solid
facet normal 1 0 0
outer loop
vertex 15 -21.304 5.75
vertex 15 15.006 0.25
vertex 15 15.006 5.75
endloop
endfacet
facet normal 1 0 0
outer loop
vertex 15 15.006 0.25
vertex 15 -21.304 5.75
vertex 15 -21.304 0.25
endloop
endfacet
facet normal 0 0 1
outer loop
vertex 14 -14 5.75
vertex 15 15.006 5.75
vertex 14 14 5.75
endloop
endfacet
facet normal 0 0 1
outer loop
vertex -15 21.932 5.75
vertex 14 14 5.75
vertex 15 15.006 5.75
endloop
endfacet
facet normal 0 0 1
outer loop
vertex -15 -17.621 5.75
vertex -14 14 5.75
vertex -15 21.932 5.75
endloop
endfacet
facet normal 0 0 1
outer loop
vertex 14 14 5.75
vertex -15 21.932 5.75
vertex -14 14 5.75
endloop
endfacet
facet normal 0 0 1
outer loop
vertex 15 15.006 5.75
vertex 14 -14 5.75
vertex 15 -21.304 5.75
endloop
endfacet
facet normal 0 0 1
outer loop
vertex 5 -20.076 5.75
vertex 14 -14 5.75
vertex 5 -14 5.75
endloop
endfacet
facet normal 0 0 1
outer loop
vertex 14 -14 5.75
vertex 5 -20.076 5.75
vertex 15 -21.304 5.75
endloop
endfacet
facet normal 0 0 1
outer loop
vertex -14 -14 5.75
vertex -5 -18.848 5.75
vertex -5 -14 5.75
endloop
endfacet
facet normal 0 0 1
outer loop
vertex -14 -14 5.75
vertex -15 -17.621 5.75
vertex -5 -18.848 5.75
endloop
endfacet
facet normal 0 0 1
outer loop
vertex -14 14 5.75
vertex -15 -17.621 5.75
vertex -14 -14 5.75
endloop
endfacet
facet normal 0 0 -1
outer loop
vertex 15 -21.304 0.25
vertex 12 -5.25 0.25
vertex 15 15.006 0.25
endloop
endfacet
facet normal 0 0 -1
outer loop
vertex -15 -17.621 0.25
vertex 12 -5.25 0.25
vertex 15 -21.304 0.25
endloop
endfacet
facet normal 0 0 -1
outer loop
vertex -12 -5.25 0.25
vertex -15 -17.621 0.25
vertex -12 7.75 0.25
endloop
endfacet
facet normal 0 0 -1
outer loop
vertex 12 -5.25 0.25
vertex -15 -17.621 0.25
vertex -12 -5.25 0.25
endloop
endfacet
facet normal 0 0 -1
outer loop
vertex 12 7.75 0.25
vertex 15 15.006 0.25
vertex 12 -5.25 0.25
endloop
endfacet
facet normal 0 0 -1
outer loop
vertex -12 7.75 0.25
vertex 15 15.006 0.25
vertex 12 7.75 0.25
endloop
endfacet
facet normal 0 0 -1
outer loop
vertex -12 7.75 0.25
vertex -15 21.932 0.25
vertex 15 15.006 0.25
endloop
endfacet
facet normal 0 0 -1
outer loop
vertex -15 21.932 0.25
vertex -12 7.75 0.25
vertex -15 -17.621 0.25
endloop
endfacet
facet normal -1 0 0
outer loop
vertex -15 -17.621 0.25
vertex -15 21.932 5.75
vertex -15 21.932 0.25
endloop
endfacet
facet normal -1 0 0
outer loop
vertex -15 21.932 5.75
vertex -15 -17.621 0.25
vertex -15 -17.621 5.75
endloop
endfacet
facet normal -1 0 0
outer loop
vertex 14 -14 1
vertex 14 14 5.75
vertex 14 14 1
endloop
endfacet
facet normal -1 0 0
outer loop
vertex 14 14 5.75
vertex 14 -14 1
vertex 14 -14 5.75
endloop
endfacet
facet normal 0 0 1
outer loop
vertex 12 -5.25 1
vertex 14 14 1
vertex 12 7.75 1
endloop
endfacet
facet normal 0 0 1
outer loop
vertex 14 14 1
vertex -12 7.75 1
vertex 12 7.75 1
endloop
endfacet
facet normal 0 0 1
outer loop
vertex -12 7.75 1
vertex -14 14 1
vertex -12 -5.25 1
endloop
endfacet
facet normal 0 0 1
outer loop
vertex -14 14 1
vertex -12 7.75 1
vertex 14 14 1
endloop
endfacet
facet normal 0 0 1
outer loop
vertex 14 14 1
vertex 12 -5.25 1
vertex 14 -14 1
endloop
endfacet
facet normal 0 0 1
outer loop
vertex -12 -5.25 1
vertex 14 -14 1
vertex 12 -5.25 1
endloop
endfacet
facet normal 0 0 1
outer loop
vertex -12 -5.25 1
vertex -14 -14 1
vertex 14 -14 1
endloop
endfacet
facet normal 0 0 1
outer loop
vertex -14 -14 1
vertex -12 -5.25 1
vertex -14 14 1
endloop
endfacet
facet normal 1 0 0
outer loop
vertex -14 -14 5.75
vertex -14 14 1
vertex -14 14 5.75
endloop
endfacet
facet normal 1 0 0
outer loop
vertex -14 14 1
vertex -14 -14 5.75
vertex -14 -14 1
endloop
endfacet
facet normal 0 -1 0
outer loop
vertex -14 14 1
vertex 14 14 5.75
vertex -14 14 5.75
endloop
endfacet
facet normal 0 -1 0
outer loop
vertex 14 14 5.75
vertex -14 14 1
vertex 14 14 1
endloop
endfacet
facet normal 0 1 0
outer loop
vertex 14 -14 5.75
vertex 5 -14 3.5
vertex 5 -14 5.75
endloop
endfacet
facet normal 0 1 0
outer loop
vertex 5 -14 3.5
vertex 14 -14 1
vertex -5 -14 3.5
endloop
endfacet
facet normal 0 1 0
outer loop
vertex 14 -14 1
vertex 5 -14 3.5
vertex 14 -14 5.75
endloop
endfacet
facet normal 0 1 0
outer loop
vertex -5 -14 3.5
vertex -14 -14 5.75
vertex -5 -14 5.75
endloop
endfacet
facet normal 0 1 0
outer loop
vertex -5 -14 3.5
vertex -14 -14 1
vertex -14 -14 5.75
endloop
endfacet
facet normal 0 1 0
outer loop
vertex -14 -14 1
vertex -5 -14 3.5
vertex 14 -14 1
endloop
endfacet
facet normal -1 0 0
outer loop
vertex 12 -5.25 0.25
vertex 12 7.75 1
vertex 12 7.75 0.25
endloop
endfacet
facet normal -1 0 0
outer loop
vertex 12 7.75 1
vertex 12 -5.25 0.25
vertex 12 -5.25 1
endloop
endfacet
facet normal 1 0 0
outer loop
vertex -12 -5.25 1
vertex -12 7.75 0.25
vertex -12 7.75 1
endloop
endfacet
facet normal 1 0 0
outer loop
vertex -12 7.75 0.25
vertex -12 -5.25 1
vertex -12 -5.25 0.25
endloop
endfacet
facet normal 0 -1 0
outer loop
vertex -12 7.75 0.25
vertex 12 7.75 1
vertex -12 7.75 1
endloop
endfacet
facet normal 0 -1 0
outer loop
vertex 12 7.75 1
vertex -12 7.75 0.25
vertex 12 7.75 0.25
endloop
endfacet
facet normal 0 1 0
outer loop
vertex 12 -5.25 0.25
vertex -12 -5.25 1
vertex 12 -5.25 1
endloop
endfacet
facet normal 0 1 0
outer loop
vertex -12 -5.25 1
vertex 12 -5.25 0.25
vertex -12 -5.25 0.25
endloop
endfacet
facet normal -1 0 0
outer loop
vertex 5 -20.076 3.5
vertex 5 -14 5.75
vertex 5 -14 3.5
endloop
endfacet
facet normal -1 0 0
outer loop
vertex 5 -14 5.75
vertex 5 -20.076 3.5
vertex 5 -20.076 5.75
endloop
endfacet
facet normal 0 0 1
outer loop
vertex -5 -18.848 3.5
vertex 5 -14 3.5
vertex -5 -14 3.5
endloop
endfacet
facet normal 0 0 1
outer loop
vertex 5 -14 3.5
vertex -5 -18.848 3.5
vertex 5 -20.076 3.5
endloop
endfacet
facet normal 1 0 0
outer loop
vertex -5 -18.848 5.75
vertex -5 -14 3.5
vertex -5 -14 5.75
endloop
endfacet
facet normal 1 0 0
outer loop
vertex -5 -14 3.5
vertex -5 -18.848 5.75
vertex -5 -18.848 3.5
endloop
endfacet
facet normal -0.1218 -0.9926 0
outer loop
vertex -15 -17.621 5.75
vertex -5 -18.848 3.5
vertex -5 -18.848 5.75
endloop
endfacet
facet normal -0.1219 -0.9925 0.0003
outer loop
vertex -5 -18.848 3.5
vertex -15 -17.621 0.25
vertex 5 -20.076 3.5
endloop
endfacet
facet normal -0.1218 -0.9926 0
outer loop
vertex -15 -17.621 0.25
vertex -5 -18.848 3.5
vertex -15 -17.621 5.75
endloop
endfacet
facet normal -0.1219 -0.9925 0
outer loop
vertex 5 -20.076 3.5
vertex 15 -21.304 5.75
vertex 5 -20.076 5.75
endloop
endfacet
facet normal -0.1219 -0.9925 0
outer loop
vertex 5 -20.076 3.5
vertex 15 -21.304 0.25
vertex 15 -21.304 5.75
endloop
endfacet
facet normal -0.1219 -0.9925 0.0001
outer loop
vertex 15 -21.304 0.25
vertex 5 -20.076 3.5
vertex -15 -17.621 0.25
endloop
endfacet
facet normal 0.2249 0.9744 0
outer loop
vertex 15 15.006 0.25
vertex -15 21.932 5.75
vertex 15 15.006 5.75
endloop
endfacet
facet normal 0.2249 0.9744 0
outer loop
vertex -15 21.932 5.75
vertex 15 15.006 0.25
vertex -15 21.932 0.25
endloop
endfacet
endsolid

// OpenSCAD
// Dimensions in mm

difference(){  
      
// main block    
translate([0,0,3])
    cube([30,48,5.5],true);

// pcb
translate([0,0,3.5])
    cube([28,28,5],true);

// screen
translate([0,1.25,2])
    cube([24,13,5],true);
    
// cable
translate([0,-14,6])
    cube([10,15,5],true);
    
// support bottom
translate([0,-24.5,3])
rotate([0,0,-7])
    cube([36,10,6],true);

// support top
translate([0,23.6,3])
rotate([0,0,-13])
    cube([36,10,6],true);    
}
